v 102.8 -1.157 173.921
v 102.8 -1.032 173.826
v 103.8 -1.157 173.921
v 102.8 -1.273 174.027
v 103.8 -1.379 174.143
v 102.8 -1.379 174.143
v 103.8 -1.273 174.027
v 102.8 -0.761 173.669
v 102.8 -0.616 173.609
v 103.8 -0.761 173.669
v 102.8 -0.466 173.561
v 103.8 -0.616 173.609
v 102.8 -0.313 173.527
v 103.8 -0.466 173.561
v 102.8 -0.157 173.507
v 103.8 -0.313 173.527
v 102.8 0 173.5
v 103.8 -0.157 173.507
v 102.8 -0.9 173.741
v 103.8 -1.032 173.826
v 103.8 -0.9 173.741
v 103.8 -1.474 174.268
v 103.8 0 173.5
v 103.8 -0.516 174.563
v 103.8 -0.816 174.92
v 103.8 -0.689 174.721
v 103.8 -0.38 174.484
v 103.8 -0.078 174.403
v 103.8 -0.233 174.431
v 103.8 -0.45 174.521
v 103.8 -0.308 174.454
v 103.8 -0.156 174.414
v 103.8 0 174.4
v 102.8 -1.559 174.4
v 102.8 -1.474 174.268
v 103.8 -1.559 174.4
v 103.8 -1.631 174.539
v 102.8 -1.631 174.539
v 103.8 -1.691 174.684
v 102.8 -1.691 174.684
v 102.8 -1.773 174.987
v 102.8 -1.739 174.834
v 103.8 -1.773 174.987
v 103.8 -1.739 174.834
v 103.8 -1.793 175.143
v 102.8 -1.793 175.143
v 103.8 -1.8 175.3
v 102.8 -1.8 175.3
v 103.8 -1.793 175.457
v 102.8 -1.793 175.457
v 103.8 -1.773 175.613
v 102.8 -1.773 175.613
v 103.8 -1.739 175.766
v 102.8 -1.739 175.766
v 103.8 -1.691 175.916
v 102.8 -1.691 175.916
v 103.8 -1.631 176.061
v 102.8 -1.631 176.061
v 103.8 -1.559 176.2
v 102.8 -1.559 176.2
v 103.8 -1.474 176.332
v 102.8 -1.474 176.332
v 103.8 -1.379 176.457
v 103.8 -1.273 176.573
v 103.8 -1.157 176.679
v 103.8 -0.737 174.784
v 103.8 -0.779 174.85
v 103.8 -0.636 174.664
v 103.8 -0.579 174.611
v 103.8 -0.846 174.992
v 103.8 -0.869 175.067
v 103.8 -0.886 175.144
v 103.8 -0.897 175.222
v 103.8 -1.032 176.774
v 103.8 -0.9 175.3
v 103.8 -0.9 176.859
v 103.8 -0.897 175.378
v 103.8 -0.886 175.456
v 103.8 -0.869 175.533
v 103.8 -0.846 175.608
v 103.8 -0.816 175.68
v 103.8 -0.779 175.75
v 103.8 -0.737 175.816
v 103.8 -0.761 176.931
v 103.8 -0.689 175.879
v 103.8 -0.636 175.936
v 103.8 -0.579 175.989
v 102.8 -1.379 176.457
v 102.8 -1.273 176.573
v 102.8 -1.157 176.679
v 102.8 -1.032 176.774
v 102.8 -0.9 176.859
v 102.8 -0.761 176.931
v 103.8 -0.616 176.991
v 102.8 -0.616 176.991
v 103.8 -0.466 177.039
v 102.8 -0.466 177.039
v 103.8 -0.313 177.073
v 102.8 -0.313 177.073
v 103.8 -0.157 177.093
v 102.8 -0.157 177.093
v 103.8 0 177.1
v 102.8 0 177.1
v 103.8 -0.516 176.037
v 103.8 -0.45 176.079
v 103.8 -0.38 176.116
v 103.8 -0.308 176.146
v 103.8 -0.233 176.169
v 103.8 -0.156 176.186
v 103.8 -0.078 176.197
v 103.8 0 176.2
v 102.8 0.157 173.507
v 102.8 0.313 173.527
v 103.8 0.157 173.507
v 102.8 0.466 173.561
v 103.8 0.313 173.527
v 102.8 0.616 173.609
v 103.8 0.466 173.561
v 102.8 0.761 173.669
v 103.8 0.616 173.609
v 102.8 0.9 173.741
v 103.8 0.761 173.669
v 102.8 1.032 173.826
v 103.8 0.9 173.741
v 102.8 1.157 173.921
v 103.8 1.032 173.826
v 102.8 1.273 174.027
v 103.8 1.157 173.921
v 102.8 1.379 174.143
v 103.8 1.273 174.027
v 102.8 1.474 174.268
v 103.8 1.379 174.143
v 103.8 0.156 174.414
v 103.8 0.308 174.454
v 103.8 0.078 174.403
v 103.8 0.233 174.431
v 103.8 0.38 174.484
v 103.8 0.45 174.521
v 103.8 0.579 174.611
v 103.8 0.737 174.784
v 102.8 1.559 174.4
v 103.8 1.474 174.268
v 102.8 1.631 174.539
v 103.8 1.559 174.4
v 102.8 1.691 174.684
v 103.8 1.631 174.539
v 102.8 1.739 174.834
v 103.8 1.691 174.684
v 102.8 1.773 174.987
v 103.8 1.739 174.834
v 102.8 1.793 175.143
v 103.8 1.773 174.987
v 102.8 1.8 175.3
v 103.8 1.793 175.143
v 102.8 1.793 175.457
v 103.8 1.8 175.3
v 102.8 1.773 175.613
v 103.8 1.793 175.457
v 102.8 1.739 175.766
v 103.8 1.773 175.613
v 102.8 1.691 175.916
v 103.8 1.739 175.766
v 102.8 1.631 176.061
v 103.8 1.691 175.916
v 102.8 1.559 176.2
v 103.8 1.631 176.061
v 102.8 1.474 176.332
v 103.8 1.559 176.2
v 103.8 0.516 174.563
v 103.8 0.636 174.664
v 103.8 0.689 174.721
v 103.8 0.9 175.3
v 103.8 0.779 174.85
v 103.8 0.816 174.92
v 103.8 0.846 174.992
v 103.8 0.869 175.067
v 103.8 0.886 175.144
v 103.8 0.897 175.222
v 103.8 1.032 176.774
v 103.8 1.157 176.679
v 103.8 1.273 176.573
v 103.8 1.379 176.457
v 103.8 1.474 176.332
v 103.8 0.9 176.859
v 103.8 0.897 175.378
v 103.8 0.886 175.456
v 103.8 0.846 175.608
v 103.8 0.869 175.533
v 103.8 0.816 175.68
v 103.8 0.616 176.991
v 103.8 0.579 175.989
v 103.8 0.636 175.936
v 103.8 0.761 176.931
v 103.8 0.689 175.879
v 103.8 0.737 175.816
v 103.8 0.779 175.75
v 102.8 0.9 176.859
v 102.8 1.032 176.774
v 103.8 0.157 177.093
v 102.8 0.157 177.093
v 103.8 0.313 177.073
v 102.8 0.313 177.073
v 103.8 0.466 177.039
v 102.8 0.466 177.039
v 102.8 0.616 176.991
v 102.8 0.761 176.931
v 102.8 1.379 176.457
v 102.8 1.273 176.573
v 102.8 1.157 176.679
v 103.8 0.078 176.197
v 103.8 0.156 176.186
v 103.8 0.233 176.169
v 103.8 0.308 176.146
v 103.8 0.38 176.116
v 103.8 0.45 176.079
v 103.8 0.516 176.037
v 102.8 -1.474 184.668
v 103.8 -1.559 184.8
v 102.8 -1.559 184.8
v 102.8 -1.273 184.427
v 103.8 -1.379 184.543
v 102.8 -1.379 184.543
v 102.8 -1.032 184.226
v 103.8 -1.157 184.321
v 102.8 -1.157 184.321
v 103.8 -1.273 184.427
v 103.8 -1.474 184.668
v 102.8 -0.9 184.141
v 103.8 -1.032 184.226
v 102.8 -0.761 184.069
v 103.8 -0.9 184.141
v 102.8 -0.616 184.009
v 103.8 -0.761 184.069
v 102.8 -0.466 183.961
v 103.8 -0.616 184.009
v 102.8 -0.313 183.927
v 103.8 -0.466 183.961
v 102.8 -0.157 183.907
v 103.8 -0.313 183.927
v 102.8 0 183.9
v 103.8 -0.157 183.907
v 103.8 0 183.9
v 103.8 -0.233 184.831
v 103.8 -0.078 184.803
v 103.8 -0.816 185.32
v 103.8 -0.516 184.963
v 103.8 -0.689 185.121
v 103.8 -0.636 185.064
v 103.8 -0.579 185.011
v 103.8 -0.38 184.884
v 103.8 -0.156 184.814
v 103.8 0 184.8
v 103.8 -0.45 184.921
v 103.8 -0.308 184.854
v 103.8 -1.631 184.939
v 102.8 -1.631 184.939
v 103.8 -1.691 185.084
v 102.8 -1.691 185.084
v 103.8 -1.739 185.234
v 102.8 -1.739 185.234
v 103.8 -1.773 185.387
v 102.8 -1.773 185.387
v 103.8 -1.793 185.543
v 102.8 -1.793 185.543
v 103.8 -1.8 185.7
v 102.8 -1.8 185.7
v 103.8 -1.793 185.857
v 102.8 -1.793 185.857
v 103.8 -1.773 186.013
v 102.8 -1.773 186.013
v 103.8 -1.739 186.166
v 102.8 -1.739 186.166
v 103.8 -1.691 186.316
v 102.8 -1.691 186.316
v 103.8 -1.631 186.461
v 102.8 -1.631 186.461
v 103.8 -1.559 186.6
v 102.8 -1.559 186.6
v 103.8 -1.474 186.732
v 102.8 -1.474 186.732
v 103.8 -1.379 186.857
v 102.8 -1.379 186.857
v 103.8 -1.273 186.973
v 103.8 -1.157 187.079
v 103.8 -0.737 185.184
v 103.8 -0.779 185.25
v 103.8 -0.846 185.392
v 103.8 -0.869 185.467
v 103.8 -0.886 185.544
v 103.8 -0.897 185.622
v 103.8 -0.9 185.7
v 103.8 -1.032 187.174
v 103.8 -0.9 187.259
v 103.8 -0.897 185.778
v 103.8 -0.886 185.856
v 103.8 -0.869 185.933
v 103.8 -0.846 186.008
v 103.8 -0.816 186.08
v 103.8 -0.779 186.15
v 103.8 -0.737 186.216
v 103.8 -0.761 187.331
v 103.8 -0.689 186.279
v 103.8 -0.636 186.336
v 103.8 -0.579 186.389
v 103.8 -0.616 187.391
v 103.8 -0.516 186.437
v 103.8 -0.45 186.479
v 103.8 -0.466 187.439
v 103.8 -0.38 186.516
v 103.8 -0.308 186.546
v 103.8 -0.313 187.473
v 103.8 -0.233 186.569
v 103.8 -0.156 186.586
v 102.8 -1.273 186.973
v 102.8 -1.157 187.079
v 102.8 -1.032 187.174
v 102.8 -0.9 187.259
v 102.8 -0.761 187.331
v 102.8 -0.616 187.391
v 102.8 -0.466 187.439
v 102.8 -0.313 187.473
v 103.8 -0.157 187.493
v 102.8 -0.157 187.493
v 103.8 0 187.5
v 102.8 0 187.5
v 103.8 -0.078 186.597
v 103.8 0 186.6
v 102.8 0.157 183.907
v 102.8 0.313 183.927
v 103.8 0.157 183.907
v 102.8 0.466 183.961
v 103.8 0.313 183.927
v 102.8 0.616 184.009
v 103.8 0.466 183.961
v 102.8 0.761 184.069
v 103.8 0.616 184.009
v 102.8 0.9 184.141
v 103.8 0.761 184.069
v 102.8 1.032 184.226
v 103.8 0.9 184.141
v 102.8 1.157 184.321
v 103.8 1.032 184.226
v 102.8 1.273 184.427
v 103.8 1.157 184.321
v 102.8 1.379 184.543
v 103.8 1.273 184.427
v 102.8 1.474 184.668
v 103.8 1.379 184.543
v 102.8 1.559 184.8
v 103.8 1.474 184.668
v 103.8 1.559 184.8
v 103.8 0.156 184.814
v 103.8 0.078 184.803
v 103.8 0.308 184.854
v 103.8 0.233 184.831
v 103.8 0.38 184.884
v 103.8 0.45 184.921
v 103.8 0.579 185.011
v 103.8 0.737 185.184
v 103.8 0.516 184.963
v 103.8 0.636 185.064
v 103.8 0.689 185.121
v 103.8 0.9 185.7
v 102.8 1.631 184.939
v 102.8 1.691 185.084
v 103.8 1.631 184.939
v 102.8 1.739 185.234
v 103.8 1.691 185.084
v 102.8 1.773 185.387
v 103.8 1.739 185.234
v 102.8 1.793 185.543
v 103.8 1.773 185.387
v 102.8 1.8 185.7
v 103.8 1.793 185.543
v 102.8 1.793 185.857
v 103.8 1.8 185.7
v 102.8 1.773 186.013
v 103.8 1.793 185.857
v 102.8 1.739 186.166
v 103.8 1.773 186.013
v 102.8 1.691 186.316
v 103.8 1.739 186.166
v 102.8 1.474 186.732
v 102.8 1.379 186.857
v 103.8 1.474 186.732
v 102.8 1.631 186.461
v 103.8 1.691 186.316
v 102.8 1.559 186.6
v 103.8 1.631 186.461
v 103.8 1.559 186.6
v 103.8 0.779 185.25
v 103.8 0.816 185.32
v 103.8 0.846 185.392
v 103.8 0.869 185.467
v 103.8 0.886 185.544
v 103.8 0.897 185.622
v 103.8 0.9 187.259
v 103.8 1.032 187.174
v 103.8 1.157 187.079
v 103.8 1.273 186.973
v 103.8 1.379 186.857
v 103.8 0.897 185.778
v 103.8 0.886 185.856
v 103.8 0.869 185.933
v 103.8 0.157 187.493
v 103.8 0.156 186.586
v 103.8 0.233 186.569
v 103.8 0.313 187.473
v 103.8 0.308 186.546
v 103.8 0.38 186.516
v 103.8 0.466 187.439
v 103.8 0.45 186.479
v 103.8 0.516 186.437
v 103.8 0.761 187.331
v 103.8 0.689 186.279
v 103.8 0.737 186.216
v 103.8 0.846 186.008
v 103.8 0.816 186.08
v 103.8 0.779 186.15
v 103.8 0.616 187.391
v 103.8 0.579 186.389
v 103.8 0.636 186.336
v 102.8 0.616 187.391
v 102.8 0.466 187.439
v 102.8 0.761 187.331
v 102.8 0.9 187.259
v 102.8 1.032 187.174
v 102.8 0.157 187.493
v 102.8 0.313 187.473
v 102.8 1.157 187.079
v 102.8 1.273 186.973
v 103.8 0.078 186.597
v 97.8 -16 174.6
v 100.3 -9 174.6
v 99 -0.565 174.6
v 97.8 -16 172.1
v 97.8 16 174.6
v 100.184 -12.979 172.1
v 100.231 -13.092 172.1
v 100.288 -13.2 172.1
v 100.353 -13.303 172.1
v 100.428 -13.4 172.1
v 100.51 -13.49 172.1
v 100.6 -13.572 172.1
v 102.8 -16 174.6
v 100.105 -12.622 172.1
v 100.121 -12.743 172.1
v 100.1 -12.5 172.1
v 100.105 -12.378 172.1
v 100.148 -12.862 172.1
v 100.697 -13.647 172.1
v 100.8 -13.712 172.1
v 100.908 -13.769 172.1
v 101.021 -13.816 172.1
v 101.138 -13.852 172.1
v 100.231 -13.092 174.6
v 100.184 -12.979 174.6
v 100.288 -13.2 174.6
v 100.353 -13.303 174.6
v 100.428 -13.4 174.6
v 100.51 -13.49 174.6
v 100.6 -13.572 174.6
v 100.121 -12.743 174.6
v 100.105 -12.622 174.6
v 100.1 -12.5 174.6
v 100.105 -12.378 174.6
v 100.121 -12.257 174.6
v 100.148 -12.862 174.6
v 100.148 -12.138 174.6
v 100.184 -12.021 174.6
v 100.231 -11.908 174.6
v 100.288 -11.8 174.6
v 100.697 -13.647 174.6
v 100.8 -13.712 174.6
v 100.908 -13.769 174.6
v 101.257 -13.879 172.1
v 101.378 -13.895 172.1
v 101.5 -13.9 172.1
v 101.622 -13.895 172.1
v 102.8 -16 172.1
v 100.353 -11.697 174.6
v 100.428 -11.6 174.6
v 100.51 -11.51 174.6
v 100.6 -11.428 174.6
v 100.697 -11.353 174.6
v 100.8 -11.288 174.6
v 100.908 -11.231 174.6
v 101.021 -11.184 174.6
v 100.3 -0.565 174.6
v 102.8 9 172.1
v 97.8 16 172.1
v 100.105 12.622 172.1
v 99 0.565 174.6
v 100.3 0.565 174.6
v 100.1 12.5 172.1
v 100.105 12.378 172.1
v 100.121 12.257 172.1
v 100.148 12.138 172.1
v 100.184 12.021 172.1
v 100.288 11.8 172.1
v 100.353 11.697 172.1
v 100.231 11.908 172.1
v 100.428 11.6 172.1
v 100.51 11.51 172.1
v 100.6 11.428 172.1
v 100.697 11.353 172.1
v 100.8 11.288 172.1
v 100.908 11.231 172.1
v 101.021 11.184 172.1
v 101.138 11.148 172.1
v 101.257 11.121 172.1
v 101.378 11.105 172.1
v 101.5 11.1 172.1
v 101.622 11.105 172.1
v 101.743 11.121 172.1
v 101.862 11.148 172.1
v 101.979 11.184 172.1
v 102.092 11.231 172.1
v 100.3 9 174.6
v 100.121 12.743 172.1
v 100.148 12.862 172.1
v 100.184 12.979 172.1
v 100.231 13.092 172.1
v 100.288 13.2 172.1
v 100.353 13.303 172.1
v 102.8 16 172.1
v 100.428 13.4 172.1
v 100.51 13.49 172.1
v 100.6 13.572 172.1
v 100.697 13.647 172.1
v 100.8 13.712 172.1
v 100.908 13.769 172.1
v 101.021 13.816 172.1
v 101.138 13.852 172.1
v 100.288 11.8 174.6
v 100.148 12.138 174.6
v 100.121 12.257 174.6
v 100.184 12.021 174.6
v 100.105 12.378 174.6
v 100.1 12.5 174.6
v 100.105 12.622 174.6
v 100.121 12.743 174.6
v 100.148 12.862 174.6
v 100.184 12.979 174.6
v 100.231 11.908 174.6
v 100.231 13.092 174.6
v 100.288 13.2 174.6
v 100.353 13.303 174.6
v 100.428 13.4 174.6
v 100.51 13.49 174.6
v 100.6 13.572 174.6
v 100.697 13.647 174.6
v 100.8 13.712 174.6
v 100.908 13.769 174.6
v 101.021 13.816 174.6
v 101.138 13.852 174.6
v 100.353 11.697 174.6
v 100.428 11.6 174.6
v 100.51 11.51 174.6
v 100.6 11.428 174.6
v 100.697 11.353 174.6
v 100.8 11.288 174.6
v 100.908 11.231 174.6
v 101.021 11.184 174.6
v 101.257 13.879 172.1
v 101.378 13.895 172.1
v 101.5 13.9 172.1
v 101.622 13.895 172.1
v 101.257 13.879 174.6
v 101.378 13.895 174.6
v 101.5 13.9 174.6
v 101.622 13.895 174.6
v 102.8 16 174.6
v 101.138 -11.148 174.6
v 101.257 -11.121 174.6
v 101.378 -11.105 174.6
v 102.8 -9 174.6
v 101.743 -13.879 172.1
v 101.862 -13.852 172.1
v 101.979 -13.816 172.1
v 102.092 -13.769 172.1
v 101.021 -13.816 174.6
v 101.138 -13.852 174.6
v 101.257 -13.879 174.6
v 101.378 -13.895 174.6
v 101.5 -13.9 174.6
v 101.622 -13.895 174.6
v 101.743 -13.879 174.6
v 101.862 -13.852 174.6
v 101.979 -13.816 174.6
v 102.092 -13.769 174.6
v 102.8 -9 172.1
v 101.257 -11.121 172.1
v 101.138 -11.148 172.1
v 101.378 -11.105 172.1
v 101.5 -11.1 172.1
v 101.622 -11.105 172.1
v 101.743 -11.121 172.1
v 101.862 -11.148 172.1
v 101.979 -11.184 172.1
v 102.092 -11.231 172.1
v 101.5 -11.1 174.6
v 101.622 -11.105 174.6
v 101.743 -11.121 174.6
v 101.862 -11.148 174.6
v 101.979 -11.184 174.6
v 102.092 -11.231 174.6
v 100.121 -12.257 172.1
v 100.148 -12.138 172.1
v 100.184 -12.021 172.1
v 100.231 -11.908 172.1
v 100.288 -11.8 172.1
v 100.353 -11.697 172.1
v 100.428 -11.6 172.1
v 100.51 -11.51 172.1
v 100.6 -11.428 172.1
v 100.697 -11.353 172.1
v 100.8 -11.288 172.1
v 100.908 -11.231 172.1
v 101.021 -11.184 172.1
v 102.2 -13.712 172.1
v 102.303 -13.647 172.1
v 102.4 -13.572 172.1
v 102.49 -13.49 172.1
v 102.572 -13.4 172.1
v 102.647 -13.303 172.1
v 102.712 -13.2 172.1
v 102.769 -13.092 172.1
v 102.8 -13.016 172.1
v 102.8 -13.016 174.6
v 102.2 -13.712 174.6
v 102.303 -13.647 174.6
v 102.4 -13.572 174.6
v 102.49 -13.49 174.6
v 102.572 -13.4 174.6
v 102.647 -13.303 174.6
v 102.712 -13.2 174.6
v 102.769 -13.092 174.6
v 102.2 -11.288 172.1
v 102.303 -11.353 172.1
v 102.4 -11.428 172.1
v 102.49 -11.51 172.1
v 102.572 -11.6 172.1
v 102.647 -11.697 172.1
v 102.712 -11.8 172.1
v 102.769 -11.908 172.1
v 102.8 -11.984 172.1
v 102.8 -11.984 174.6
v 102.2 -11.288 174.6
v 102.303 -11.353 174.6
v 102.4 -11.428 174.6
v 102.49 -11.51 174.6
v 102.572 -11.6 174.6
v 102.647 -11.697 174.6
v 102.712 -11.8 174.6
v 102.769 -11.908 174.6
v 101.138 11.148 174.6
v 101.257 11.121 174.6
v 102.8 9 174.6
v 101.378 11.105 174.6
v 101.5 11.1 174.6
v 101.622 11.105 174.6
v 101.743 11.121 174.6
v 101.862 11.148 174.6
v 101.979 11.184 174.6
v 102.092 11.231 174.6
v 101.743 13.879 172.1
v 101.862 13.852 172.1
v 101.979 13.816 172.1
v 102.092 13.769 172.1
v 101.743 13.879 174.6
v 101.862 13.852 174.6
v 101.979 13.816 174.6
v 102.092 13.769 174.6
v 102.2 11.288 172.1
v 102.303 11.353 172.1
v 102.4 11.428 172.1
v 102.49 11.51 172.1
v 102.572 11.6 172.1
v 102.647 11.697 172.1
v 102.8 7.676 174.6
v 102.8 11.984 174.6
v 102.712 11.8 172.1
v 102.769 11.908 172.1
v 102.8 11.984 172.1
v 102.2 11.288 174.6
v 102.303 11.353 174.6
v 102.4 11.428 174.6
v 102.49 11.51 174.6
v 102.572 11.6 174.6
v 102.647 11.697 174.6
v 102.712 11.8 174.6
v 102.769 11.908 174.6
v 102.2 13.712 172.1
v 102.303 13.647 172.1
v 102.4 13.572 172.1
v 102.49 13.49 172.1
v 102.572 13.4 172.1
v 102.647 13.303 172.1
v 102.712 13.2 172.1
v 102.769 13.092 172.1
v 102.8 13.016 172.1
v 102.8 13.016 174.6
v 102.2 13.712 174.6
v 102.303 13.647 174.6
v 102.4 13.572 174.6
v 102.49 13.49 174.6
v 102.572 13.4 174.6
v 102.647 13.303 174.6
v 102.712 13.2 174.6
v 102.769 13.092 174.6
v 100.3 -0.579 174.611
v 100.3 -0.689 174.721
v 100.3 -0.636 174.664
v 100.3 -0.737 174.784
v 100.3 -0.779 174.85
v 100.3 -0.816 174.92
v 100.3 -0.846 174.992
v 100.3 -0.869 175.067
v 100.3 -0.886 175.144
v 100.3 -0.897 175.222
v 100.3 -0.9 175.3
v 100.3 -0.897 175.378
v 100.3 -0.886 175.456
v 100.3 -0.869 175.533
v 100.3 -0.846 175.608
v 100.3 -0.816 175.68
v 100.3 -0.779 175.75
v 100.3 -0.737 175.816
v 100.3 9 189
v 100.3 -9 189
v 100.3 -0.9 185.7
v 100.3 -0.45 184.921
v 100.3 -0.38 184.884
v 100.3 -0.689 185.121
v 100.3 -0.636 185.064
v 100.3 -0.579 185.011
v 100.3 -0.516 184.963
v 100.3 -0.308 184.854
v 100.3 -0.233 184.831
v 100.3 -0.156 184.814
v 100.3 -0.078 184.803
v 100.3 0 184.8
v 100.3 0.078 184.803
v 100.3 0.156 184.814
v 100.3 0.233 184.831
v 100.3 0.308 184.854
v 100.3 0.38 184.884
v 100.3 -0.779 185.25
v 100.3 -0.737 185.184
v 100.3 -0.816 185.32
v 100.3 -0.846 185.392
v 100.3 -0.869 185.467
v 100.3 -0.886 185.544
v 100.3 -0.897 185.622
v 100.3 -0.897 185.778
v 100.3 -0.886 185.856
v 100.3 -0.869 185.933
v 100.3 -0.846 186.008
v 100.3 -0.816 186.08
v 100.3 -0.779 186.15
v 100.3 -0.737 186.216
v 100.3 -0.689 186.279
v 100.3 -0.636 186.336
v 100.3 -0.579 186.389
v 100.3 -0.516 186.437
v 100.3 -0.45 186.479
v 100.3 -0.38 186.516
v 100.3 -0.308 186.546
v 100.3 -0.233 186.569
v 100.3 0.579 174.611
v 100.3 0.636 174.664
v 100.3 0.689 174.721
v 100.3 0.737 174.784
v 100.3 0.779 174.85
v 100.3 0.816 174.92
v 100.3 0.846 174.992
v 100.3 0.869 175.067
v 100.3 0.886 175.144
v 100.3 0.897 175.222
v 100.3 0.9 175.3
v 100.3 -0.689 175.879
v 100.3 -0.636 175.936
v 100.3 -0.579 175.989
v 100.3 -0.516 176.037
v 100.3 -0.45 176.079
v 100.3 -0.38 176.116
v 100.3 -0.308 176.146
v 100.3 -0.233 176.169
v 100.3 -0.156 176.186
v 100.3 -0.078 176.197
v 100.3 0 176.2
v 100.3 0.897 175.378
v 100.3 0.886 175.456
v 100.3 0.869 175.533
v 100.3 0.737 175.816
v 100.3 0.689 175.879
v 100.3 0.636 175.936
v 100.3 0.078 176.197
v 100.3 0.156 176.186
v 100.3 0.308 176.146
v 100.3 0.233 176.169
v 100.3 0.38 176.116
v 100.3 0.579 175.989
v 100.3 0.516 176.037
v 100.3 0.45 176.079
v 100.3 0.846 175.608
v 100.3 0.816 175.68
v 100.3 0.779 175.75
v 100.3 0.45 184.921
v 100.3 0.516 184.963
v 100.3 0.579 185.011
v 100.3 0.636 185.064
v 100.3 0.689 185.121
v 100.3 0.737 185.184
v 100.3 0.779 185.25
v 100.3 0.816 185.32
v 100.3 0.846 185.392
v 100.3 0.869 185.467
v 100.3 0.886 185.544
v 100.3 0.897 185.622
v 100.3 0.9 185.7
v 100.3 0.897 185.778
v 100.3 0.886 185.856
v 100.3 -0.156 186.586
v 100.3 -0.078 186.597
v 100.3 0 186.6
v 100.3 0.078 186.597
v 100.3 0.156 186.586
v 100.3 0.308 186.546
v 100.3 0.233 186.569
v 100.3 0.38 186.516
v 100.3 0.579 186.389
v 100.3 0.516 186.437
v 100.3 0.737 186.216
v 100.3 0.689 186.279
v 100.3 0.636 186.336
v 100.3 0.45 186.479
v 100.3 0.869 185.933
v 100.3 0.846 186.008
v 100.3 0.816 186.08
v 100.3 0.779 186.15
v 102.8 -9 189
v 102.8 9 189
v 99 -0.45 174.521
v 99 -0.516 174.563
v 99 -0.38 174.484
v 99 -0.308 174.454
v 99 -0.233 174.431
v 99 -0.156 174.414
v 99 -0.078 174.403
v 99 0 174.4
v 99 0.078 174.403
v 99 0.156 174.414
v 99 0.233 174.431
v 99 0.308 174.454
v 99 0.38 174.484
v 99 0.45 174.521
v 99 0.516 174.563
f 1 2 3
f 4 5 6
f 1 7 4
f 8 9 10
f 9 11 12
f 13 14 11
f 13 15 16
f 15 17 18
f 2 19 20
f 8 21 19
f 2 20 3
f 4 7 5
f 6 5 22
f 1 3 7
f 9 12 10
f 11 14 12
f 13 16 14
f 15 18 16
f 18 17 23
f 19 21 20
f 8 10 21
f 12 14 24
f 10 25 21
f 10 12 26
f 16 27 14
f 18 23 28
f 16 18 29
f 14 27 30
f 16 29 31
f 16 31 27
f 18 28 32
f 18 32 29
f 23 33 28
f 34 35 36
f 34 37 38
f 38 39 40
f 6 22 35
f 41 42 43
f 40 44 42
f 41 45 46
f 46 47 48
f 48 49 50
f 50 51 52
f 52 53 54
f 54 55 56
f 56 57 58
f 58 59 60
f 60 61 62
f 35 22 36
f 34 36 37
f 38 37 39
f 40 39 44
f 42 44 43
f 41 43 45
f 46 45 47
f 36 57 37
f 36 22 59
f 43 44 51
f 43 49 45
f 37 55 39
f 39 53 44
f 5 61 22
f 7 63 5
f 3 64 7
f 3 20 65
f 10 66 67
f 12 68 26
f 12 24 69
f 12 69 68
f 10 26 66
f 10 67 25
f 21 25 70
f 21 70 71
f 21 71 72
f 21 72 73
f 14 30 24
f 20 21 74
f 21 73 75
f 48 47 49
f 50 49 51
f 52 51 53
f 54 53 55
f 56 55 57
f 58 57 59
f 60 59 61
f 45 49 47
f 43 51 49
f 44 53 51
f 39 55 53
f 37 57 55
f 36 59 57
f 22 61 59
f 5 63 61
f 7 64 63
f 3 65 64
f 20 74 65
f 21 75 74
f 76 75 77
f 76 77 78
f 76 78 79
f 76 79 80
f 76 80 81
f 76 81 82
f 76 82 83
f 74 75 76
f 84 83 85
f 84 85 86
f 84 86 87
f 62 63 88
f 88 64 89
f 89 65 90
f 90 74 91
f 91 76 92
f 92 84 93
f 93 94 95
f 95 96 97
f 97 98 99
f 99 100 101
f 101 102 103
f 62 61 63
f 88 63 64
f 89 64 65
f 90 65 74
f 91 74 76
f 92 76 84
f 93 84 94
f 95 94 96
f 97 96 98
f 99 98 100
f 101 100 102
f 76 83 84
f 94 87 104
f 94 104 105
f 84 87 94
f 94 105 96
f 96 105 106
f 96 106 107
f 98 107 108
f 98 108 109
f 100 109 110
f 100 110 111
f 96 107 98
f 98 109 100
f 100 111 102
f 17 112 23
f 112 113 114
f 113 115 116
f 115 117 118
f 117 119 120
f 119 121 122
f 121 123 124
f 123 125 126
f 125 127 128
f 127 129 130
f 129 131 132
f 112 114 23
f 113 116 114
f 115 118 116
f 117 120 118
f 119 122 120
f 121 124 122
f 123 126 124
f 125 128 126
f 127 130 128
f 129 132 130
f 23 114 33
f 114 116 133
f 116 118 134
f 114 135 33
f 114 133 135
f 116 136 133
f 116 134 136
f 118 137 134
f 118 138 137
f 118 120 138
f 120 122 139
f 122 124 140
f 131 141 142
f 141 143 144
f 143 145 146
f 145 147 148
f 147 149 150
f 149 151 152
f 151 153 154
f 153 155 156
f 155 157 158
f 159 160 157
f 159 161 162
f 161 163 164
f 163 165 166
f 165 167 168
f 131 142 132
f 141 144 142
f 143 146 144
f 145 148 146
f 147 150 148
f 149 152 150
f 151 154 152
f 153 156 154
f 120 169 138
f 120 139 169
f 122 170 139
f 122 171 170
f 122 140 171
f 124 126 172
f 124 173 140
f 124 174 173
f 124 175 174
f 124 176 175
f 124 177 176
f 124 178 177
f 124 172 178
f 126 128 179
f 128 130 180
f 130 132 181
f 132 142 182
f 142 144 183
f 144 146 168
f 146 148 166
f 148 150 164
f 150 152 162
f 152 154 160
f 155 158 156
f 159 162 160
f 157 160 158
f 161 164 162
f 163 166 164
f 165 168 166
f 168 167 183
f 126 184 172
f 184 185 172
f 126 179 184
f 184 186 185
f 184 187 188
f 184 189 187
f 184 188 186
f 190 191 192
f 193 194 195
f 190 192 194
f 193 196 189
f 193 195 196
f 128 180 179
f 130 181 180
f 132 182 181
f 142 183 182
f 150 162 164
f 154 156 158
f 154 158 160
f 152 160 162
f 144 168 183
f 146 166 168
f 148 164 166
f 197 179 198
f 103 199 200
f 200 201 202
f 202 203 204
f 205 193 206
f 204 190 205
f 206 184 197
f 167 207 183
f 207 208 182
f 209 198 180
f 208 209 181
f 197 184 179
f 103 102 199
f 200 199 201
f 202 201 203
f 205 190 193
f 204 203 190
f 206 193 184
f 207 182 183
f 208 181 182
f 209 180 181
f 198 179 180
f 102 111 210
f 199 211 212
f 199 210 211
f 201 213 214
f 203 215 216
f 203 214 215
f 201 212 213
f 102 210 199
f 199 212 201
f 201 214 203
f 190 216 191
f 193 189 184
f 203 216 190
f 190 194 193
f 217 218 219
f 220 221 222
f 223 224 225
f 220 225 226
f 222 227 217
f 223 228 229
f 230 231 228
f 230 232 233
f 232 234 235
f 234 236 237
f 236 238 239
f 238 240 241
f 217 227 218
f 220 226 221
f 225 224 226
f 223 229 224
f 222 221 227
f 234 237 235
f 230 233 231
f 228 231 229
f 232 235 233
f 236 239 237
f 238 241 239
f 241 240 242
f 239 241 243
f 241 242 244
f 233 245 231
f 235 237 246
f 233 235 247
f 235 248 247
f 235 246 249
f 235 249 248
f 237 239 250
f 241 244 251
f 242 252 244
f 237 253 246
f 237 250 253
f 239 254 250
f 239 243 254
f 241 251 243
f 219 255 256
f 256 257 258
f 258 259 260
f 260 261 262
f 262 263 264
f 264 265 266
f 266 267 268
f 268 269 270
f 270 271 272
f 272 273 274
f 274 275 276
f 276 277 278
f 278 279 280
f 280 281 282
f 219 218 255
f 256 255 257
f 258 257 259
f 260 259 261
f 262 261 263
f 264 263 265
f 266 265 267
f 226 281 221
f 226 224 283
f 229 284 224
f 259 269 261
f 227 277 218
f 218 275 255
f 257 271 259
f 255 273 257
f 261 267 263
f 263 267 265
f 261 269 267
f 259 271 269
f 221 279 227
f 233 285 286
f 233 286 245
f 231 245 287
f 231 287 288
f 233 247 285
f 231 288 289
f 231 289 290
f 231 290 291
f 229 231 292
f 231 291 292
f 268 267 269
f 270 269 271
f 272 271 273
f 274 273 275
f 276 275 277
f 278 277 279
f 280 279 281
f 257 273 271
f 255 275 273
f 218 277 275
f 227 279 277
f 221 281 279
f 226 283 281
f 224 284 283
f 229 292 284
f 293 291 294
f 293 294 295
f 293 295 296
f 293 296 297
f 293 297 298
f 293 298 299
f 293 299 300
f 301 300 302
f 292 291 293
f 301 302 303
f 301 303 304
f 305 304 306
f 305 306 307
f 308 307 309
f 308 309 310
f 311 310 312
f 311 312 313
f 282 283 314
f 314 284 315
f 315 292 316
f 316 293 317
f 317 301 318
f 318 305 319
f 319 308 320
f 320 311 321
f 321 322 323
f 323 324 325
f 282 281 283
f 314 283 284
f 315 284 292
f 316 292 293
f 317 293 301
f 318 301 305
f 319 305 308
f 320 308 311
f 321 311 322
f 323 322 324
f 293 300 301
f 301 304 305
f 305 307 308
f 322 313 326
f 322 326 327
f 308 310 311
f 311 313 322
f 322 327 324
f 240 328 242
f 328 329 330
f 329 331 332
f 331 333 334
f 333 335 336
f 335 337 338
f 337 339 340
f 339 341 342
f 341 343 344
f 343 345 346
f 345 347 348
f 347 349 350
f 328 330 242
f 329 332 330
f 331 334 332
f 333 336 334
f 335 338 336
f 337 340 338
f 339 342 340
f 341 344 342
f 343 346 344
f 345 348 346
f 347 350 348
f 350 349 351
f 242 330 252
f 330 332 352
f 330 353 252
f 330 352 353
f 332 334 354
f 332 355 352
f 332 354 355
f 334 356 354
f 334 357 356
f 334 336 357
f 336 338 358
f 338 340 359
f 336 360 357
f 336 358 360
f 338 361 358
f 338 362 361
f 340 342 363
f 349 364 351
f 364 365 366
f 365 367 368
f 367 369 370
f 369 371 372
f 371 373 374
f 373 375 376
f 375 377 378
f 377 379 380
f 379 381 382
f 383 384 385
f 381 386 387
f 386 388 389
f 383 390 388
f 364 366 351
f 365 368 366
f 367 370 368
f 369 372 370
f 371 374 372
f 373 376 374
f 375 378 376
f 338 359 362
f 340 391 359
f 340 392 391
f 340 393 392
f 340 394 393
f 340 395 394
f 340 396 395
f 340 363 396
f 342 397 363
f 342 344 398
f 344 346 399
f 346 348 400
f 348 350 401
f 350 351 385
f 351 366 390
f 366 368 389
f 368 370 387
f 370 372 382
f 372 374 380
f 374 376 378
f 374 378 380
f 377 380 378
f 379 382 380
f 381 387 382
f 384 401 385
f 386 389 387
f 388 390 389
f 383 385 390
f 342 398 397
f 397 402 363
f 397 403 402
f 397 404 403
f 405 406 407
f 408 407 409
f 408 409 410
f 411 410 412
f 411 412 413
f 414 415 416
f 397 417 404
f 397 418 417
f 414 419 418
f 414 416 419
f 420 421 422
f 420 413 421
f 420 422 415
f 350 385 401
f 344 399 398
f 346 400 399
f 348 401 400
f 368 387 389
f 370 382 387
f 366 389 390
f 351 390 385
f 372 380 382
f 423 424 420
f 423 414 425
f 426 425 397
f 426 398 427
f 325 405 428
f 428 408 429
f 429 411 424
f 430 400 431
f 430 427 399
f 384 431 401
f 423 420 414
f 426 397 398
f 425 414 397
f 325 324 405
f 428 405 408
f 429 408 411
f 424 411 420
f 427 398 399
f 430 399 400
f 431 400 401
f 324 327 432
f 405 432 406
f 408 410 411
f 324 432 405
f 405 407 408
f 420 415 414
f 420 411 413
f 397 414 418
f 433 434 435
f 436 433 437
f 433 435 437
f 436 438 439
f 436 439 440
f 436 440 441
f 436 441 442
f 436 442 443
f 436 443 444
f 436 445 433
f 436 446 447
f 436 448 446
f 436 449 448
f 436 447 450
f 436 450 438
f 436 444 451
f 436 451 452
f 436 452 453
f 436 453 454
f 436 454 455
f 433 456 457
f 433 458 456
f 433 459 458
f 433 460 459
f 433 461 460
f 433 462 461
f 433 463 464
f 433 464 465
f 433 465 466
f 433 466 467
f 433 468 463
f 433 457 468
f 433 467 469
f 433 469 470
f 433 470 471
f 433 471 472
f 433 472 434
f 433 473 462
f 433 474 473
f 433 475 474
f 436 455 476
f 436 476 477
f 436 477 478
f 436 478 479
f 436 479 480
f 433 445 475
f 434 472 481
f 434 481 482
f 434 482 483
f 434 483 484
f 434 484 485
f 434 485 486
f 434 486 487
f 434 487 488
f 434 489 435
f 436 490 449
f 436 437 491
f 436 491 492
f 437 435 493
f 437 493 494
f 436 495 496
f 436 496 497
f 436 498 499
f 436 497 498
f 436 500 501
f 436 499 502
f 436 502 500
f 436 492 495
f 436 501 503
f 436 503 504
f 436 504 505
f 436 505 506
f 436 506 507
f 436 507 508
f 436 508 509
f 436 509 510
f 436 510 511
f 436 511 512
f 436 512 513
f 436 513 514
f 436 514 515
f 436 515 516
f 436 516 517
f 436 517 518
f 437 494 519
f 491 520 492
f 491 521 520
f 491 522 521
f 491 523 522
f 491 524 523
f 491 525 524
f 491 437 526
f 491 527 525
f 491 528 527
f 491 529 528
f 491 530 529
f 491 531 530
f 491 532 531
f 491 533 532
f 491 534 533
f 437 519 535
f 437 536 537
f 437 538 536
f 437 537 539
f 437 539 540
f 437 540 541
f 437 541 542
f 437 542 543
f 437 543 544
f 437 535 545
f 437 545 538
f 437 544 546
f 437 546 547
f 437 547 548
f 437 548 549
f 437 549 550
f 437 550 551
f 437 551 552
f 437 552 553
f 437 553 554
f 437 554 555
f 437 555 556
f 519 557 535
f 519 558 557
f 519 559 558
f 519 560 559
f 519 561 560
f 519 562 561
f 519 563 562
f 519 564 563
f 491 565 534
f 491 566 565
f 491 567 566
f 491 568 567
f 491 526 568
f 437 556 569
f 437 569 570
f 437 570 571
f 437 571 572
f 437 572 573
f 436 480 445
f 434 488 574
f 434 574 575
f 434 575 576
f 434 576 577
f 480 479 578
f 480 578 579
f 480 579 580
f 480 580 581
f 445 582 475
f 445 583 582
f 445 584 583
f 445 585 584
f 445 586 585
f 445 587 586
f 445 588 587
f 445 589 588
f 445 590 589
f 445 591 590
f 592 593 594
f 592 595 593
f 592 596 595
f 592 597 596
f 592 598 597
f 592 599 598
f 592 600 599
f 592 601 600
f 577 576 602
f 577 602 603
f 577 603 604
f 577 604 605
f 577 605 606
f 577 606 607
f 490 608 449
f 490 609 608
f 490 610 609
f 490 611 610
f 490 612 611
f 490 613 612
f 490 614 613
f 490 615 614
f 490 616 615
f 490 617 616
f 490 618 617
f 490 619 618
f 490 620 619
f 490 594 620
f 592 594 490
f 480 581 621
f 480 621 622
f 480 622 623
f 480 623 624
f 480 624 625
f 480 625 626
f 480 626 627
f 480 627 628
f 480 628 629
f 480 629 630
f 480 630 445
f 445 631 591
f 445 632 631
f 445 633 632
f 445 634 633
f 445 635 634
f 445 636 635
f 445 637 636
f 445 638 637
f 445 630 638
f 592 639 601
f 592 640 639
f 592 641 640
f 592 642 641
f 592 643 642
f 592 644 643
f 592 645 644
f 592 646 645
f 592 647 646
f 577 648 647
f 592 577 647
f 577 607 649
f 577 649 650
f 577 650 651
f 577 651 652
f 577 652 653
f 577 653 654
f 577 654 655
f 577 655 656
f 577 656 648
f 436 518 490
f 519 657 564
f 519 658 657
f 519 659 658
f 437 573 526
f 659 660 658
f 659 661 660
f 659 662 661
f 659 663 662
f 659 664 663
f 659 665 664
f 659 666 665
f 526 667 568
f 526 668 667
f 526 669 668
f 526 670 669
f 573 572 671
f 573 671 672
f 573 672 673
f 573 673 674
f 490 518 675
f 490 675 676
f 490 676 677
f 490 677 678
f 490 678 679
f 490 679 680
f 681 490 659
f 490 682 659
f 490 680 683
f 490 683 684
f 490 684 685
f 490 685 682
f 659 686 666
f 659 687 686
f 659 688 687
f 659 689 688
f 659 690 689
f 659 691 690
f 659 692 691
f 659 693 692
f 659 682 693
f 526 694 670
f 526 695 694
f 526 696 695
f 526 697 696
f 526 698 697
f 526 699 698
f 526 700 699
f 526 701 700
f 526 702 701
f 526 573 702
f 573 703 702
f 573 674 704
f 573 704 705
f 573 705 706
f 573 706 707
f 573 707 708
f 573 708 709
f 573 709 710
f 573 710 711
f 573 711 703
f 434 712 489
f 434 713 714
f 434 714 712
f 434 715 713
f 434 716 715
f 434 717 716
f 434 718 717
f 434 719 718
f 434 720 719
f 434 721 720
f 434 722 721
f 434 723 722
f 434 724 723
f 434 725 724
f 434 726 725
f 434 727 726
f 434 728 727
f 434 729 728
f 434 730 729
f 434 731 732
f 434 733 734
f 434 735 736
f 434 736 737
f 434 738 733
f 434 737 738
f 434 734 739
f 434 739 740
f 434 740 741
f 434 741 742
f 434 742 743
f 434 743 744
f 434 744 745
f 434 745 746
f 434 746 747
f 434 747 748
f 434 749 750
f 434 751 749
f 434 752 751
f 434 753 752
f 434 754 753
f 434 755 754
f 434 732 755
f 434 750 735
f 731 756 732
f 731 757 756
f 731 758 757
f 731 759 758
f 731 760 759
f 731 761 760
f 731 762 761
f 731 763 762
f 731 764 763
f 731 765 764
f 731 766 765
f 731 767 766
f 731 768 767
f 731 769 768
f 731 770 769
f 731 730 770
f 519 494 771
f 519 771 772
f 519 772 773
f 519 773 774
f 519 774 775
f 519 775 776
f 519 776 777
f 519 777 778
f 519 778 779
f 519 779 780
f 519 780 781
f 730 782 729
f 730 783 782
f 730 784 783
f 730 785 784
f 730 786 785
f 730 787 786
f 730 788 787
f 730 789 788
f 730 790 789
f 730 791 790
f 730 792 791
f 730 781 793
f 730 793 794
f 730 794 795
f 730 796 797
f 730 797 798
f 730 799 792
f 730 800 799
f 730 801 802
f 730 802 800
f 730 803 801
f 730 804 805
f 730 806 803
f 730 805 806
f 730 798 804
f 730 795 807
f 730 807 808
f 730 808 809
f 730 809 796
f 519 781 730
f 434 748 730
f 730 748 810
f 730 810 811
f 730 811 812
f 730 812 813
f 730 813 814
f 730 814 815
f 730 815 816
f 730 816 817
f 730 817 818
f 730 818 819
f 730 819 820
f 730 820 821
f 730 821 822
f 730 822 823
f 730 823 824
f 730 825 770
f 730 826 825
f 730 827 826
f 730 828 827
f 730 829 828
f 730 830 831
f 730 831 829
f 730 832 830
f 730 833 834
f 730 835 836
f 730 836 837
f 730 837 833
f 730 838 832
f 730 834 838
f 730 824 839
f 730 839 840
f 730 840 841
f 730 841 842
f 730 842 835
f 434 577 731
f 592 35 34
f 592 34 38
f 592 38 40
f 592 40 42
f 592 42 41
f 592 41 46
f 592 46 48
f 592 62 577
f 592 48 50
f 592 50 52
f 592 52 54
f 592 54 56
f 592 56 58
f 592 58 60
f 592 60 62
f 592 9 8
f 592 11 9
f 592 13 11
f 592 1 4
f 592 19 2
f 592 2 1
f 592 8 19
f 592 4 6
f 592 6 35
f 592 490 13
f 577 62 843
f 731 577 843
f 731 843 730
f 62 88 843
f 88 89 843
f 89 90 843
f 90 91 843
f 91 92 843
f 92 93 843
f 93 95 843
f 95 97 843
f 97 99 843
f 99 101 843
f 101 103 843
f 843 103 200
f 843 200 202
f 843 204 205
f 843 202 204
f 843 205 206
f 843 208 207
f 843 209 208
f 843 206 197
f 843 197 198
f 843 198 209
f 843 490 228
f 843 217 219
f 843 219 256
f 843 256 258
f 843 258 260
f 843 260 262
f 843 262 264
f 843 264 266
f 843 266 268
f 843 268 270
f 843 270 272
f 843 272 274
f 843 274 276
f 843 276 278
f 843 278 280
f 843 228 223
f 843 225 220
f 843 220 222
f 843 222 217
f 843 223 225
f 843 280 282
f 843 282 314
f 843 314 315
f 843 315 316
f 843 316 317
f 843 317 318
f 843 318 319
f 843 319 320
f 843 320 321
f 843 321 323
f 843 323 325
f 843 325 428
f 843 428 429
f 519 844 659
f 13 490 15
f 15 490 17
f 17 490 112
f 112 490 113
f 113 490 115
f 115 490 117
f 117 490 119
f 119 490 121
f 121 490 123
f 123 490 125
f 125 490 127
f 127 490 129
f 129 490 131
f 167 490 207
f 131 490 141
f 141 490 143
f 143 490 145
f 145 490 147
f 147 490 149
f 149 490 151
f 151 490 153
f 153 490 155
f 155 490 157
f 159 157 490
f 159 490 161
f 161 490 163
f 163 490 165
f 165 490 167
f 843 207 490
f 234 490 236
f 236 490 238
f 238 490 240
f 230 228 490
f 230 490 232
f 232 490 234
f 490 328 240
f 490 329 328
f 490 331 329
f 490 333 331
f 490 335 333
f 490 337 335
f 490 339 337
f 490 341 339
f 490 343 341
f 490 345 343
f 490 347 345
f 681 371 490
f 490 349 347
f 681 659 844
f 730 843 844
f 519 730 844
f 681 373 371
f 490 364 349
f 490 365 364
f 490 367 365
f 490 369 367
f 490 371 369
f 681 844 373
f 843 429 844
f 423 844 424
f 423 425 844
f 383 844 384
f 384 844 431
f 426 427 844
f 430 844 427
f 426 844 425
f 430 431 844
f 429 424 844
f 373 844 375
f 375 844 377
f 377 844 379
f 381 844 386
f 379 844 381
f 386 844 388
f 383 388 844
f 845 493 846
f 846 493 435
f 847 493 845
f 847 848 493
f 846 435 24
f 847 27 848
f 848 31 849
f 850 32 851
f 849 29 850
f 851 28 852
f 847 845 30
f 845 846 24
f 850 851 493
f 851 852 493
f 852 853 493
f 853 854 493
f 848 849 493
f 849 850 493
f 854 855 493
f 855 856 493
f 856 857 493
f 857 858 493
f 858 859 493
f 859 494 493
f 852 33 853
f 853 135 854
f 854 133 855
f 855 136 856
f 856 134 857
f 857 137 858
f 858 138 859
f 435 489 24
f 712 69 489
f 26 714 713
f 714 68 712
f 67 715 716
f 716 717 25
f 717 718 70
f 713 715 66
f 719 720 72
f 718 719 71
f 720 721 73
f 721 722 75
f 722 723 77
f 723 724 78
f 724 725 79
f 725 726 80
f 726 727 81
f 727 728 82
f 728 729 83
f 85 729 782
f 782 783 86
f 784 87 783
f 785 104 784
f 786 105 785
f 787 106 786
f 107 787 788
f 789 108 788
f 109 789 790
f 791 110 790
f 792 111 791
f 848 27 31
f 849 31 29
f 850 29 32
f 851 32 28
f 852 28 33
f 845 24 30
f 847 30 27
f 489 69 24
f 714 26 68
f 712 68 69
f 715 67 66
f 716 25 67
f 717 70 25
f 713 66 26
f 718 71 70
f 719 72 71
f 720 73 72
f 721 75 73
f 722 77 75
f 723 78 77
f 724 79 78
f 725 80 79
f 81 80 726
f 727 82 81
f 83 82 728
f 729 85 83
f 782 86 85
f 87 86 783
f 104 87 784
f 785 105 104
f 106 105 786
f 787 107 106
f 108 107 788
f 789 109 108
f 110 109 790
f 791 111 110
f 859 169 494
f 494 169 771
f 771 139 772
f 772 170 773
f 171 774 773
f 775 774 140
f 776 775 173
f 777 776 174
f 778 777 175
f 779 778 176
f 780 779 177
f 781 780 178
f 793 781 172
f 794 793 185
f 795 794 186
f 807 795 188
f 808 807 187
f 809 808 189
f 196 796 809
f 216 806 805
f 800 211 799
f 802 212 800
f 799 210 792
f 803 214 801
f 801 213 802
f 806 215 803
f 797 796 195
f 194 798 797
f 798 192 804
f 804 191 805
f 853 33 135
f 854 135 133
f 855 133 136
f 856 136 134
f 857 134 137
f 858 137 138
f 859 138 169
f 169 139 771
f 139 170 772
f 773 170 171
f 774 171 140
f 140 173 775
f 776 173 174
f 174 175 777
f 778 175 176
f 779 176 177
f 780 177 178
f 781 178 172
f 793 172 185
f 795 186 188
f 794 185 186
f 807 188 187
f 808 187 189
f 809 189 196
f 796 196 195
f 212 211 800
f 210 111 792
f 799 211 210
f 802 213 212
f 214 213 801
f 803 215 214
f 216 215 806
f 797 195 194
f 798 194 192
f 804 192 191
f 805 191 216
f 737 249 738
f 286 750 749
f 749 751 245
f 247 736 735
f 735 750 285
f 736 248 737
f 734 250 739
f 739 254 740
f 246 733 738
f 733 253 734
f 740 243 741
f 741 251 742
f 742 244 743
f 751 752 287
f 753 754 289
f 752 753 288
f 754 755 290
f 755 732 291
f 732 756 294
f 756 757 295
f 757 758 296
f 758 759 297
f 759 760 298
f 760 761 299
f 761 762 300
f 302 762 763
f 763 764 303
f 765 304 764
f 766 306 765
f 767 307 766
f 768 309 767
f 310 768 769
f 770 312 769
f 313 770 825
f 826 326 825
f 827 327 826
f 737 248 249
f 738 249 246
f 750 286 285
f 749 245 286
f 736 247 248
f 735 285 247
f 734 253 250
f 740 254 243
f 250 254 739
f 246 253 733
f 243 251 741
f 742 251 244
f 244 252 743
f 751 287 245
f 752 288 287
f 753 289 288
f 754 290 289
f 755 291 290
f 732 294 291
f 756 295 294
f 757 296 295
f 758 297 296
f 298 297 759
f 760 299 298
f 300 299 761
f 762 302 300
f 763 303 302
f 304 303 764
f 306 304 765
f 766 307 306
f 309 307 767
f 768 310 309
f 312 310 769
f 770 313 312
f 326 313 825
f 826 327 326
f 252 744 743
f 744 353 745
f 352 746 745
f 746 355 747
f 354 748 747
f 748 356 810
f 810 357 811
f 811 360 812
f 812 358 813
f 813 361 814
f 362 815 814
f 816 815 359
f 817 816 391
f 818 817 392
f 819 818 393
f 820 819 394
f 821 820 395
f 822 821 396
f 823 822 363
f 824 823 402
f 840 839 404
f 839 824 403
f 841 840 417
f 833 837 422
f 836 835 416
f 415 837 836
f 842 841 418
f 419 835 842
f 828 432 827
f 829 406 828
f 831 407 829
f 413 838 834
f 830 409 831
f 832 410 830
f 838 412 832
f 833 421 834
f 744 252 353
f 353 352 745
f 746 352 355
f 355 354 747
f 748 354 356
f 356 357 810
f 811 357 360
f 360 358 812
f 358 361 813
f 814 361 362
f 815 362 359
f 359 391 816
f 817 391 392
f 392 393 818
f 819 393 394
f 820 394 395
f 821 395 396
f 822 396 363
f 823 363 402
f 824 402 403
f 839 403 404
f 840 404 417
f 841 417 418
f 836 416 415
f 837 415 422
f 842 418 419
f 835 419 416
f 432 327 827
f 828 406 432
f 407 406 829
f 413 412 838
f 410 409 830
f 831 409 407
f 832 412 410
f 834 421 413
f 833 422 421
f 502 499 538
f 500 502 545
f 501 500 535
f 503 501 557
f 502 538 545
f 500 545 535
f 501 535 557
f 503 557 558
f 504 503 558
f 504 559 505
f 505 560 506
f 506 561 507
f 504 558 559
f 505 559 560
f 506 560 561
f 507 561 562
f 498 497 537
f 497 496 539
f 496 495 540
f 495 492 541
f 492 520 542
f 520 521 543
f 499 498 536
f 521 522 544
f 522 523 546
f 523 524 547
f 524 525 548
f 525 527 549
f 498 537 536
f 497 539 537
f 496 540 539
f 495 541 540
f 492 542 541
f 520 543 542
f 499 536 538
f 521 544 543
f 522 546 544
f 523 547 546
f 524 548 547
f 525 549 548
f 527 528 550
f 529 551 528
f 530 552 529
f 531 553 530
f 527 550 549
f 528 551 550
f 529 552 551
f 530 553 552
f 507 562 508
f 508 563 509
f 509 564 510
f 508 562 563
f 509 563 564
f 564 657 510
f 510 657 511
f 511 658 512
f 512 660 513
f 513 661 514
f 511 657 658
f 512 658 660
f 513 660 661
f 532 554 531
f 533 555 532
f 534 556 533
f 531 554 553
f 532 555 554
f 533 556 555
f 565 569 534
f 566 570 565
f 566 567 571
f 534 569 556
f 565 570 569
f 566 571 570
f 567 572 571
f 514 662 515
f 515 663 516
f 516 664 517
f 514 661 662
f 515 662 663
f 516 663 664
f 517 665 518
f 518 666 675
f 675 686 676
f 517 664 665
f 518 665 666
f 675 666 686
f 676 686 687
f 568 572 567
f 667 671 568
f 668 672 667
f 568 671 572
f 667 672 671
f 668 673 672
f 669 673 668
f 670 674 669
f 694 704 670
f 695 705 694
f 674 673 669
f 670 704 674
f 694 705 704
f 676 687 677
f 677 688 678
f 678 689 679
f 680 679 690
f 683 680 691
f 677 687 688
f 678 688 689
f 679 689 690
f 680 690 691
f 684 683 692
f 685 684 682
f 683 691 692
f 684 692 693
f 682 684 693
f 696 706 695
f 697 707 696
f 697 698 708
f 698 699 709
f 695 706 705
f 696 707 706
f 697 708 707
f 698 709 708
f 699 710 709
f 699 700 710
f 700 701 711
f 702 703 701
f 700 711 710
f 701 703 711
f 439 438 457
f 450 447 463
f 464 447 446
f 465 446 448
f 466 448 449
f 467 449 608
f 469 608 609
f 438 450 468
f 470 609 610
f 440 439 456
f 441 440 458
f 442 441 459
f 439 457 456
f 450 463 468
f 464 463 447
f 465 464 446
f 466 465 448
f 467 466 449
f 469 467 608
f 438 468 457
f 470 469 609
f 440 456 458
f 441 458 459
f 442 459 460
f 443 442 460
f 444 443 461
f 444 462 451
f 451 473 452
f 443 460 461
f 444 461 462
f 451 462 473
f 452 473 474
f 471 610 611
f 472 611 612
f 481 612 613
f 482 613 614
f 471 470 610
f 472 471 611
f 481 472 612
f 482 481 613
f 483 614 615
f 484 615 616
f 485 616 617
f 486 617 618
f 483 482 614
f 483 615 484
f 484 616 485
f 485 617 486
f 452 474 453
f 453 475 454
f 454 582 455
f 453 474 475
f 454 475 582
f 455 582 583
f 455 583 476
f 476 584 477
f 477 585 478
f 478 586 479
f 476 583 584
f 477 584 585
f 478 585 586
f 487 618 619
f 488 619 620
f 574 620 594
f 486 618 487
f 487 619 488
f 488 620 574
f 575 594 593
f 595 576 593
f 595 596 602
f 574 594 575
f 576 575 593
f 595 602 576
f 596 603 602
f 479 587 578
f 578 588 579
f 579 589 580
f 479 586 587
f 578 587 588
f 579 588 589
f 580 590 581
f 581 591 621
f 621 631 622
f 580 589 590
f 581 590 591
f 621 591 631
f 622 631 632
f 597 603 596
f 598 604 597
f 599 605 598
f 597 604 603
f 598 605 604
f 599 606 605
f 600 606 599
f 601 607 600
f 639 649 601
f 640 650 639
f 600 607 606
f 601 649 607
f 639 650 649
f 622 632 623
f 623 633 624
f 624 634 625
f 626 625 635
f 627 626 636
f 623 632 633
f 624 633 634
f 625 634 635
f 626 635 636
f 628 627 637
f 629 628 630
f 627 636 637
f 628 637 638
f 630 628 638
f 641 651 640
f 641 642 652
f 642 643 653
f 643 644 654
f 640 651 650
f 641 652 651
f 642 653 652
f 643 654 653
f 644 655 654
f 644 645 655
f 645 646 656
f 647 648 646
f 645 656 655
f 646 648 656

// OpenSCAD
// file: ../md_params.scad
// =====================================================================
//  Microduck-look skin for the Open Duck Mini v2 skeleton
//  Shared parameters and helpers.
//  Frame: Open Duck print/robot frame, mm. +x forward, +y left, +z up.
//  Every part is modelled where it sits on the robot (zero pose).
// =====================================================================

$fn = 72;
EPS = 0.01;

// ---------- fasteners ----------
INSERT_D   = 4.0;   // hole for M3 x 5 brass heat-set insert (Amazon B0DZ8B7FW1)
INSERT_L   = 6.0;   // hole depth for that insert
M3_CLR     = 3.4;   // M3 clearance
M3_HEAD    = 6.5;   // M3 socket-head counterbore
M3_NUT     = 6.4;   // M3 nut across corners (+clearance)
M2_TAP     = 1.8;   // M2 self-tapping pilot (SG90 tab screws, servo adapter)
M25_TAP    = 2.2;   // M2.5 self-tapping pilot (Radxa)
M2_CLR     = 2.4;

// ---------- colours (for previews only) ----------
C_WHITE = [0.95, 0.94, 0.90];
C_BLACK = [0.13, 0.13, 0.14];

// ---------- helpers ----------
function lerp(a, b, t) = a + (b - a) * t;

// Section with vertical sides from zb to zc and a superellipse cap from zc to zt.
// Points are (y, z). n = 2 gives an ellipse, larger n gives a squarer top.
function se_pts(w, zb, zc, zt, n, N = 56) =
    concat(
        [[ w, zb]],
        [for (i = [0:N]) let(t = i * 180 / N, c = cos(t), s = sin(t))
            [w * sign(c) * pow(abs(c), 2 / n), zc + (zt - zc) * pow(abs(s), 2 / n)]],
        [[-w, zb]]
    );

// st = [x, half_width, z_bottom, z_curve_start, z_top, exponent]
module station(st, inset = 0, ext = 0) {
    translate([st[0], 0, 0]) rotate([90, 0, 90])
        linear_extrude(height = EPS, center = true)
            offset(delta = -inset)
                polygon(se_pts(st[1], st[2] - ext, st[3], st[4], st[5]));
}

// piecewise loft through convex stations (hull of neighbours)
module loft(sts, inset = 0, ext = 0) {
    for (i = [0:len(sts) - 2])
        hull() { station(sts[i], inset, ext); station(sts[i + 1], inset, ext); }
}

// station parameters interpolated at any x inside the list
function st_at(sts, x) =
    let(i = max([for (k = [0:len(sts) - 2]) if (sts[k][0] <= x) k]),
        a = sts[i], b = sts[i + 1], t = (x - a[0]) / (b[0] - a[0]))
    [x, lerp(a[1], b[1], t), lerp(a[2], b[2], t), lerp(a[3], b[3], t),
        lerp(a[4], b[4], t), lerp(a[5], b[5], t)];

// heat-set insert pocket: opening at origin, going along -z by default
module insert_hole(depth = INSERT_L, d = INSERT_D) {
    translate([0, 0, -depth]) cylinder(d = d, h = depth + EPS);
    translate([0, 0, -0.6]) cylinder(d1 = d, d2 = d + 0.8, h = 0.6 + EPS);   // lead-in chamfer
}

// M3 clearance with counterbore, axis +z, counterbore at the top
module m3_cb(len_total, cb_depth) {
    translate([0, 0, -EPS]) cylinder(d = M3_CLR, h = len_total + 2 * EPS);
    translate([0, 0, len_total - cb_depth]) cylinder(d = M3_HEAD, h = cb_depth + 1);
}

module rrect(x0, x1, y0, y1, r) {
    translate([x0 + r, y0 + r]) offset(r = r) square([x1 - x0 - 2 * r, y1 - y0 - 2 * r]);
}
// main file
include <../md_params.scad>
include <../md_head.scad>
tof_tab();
